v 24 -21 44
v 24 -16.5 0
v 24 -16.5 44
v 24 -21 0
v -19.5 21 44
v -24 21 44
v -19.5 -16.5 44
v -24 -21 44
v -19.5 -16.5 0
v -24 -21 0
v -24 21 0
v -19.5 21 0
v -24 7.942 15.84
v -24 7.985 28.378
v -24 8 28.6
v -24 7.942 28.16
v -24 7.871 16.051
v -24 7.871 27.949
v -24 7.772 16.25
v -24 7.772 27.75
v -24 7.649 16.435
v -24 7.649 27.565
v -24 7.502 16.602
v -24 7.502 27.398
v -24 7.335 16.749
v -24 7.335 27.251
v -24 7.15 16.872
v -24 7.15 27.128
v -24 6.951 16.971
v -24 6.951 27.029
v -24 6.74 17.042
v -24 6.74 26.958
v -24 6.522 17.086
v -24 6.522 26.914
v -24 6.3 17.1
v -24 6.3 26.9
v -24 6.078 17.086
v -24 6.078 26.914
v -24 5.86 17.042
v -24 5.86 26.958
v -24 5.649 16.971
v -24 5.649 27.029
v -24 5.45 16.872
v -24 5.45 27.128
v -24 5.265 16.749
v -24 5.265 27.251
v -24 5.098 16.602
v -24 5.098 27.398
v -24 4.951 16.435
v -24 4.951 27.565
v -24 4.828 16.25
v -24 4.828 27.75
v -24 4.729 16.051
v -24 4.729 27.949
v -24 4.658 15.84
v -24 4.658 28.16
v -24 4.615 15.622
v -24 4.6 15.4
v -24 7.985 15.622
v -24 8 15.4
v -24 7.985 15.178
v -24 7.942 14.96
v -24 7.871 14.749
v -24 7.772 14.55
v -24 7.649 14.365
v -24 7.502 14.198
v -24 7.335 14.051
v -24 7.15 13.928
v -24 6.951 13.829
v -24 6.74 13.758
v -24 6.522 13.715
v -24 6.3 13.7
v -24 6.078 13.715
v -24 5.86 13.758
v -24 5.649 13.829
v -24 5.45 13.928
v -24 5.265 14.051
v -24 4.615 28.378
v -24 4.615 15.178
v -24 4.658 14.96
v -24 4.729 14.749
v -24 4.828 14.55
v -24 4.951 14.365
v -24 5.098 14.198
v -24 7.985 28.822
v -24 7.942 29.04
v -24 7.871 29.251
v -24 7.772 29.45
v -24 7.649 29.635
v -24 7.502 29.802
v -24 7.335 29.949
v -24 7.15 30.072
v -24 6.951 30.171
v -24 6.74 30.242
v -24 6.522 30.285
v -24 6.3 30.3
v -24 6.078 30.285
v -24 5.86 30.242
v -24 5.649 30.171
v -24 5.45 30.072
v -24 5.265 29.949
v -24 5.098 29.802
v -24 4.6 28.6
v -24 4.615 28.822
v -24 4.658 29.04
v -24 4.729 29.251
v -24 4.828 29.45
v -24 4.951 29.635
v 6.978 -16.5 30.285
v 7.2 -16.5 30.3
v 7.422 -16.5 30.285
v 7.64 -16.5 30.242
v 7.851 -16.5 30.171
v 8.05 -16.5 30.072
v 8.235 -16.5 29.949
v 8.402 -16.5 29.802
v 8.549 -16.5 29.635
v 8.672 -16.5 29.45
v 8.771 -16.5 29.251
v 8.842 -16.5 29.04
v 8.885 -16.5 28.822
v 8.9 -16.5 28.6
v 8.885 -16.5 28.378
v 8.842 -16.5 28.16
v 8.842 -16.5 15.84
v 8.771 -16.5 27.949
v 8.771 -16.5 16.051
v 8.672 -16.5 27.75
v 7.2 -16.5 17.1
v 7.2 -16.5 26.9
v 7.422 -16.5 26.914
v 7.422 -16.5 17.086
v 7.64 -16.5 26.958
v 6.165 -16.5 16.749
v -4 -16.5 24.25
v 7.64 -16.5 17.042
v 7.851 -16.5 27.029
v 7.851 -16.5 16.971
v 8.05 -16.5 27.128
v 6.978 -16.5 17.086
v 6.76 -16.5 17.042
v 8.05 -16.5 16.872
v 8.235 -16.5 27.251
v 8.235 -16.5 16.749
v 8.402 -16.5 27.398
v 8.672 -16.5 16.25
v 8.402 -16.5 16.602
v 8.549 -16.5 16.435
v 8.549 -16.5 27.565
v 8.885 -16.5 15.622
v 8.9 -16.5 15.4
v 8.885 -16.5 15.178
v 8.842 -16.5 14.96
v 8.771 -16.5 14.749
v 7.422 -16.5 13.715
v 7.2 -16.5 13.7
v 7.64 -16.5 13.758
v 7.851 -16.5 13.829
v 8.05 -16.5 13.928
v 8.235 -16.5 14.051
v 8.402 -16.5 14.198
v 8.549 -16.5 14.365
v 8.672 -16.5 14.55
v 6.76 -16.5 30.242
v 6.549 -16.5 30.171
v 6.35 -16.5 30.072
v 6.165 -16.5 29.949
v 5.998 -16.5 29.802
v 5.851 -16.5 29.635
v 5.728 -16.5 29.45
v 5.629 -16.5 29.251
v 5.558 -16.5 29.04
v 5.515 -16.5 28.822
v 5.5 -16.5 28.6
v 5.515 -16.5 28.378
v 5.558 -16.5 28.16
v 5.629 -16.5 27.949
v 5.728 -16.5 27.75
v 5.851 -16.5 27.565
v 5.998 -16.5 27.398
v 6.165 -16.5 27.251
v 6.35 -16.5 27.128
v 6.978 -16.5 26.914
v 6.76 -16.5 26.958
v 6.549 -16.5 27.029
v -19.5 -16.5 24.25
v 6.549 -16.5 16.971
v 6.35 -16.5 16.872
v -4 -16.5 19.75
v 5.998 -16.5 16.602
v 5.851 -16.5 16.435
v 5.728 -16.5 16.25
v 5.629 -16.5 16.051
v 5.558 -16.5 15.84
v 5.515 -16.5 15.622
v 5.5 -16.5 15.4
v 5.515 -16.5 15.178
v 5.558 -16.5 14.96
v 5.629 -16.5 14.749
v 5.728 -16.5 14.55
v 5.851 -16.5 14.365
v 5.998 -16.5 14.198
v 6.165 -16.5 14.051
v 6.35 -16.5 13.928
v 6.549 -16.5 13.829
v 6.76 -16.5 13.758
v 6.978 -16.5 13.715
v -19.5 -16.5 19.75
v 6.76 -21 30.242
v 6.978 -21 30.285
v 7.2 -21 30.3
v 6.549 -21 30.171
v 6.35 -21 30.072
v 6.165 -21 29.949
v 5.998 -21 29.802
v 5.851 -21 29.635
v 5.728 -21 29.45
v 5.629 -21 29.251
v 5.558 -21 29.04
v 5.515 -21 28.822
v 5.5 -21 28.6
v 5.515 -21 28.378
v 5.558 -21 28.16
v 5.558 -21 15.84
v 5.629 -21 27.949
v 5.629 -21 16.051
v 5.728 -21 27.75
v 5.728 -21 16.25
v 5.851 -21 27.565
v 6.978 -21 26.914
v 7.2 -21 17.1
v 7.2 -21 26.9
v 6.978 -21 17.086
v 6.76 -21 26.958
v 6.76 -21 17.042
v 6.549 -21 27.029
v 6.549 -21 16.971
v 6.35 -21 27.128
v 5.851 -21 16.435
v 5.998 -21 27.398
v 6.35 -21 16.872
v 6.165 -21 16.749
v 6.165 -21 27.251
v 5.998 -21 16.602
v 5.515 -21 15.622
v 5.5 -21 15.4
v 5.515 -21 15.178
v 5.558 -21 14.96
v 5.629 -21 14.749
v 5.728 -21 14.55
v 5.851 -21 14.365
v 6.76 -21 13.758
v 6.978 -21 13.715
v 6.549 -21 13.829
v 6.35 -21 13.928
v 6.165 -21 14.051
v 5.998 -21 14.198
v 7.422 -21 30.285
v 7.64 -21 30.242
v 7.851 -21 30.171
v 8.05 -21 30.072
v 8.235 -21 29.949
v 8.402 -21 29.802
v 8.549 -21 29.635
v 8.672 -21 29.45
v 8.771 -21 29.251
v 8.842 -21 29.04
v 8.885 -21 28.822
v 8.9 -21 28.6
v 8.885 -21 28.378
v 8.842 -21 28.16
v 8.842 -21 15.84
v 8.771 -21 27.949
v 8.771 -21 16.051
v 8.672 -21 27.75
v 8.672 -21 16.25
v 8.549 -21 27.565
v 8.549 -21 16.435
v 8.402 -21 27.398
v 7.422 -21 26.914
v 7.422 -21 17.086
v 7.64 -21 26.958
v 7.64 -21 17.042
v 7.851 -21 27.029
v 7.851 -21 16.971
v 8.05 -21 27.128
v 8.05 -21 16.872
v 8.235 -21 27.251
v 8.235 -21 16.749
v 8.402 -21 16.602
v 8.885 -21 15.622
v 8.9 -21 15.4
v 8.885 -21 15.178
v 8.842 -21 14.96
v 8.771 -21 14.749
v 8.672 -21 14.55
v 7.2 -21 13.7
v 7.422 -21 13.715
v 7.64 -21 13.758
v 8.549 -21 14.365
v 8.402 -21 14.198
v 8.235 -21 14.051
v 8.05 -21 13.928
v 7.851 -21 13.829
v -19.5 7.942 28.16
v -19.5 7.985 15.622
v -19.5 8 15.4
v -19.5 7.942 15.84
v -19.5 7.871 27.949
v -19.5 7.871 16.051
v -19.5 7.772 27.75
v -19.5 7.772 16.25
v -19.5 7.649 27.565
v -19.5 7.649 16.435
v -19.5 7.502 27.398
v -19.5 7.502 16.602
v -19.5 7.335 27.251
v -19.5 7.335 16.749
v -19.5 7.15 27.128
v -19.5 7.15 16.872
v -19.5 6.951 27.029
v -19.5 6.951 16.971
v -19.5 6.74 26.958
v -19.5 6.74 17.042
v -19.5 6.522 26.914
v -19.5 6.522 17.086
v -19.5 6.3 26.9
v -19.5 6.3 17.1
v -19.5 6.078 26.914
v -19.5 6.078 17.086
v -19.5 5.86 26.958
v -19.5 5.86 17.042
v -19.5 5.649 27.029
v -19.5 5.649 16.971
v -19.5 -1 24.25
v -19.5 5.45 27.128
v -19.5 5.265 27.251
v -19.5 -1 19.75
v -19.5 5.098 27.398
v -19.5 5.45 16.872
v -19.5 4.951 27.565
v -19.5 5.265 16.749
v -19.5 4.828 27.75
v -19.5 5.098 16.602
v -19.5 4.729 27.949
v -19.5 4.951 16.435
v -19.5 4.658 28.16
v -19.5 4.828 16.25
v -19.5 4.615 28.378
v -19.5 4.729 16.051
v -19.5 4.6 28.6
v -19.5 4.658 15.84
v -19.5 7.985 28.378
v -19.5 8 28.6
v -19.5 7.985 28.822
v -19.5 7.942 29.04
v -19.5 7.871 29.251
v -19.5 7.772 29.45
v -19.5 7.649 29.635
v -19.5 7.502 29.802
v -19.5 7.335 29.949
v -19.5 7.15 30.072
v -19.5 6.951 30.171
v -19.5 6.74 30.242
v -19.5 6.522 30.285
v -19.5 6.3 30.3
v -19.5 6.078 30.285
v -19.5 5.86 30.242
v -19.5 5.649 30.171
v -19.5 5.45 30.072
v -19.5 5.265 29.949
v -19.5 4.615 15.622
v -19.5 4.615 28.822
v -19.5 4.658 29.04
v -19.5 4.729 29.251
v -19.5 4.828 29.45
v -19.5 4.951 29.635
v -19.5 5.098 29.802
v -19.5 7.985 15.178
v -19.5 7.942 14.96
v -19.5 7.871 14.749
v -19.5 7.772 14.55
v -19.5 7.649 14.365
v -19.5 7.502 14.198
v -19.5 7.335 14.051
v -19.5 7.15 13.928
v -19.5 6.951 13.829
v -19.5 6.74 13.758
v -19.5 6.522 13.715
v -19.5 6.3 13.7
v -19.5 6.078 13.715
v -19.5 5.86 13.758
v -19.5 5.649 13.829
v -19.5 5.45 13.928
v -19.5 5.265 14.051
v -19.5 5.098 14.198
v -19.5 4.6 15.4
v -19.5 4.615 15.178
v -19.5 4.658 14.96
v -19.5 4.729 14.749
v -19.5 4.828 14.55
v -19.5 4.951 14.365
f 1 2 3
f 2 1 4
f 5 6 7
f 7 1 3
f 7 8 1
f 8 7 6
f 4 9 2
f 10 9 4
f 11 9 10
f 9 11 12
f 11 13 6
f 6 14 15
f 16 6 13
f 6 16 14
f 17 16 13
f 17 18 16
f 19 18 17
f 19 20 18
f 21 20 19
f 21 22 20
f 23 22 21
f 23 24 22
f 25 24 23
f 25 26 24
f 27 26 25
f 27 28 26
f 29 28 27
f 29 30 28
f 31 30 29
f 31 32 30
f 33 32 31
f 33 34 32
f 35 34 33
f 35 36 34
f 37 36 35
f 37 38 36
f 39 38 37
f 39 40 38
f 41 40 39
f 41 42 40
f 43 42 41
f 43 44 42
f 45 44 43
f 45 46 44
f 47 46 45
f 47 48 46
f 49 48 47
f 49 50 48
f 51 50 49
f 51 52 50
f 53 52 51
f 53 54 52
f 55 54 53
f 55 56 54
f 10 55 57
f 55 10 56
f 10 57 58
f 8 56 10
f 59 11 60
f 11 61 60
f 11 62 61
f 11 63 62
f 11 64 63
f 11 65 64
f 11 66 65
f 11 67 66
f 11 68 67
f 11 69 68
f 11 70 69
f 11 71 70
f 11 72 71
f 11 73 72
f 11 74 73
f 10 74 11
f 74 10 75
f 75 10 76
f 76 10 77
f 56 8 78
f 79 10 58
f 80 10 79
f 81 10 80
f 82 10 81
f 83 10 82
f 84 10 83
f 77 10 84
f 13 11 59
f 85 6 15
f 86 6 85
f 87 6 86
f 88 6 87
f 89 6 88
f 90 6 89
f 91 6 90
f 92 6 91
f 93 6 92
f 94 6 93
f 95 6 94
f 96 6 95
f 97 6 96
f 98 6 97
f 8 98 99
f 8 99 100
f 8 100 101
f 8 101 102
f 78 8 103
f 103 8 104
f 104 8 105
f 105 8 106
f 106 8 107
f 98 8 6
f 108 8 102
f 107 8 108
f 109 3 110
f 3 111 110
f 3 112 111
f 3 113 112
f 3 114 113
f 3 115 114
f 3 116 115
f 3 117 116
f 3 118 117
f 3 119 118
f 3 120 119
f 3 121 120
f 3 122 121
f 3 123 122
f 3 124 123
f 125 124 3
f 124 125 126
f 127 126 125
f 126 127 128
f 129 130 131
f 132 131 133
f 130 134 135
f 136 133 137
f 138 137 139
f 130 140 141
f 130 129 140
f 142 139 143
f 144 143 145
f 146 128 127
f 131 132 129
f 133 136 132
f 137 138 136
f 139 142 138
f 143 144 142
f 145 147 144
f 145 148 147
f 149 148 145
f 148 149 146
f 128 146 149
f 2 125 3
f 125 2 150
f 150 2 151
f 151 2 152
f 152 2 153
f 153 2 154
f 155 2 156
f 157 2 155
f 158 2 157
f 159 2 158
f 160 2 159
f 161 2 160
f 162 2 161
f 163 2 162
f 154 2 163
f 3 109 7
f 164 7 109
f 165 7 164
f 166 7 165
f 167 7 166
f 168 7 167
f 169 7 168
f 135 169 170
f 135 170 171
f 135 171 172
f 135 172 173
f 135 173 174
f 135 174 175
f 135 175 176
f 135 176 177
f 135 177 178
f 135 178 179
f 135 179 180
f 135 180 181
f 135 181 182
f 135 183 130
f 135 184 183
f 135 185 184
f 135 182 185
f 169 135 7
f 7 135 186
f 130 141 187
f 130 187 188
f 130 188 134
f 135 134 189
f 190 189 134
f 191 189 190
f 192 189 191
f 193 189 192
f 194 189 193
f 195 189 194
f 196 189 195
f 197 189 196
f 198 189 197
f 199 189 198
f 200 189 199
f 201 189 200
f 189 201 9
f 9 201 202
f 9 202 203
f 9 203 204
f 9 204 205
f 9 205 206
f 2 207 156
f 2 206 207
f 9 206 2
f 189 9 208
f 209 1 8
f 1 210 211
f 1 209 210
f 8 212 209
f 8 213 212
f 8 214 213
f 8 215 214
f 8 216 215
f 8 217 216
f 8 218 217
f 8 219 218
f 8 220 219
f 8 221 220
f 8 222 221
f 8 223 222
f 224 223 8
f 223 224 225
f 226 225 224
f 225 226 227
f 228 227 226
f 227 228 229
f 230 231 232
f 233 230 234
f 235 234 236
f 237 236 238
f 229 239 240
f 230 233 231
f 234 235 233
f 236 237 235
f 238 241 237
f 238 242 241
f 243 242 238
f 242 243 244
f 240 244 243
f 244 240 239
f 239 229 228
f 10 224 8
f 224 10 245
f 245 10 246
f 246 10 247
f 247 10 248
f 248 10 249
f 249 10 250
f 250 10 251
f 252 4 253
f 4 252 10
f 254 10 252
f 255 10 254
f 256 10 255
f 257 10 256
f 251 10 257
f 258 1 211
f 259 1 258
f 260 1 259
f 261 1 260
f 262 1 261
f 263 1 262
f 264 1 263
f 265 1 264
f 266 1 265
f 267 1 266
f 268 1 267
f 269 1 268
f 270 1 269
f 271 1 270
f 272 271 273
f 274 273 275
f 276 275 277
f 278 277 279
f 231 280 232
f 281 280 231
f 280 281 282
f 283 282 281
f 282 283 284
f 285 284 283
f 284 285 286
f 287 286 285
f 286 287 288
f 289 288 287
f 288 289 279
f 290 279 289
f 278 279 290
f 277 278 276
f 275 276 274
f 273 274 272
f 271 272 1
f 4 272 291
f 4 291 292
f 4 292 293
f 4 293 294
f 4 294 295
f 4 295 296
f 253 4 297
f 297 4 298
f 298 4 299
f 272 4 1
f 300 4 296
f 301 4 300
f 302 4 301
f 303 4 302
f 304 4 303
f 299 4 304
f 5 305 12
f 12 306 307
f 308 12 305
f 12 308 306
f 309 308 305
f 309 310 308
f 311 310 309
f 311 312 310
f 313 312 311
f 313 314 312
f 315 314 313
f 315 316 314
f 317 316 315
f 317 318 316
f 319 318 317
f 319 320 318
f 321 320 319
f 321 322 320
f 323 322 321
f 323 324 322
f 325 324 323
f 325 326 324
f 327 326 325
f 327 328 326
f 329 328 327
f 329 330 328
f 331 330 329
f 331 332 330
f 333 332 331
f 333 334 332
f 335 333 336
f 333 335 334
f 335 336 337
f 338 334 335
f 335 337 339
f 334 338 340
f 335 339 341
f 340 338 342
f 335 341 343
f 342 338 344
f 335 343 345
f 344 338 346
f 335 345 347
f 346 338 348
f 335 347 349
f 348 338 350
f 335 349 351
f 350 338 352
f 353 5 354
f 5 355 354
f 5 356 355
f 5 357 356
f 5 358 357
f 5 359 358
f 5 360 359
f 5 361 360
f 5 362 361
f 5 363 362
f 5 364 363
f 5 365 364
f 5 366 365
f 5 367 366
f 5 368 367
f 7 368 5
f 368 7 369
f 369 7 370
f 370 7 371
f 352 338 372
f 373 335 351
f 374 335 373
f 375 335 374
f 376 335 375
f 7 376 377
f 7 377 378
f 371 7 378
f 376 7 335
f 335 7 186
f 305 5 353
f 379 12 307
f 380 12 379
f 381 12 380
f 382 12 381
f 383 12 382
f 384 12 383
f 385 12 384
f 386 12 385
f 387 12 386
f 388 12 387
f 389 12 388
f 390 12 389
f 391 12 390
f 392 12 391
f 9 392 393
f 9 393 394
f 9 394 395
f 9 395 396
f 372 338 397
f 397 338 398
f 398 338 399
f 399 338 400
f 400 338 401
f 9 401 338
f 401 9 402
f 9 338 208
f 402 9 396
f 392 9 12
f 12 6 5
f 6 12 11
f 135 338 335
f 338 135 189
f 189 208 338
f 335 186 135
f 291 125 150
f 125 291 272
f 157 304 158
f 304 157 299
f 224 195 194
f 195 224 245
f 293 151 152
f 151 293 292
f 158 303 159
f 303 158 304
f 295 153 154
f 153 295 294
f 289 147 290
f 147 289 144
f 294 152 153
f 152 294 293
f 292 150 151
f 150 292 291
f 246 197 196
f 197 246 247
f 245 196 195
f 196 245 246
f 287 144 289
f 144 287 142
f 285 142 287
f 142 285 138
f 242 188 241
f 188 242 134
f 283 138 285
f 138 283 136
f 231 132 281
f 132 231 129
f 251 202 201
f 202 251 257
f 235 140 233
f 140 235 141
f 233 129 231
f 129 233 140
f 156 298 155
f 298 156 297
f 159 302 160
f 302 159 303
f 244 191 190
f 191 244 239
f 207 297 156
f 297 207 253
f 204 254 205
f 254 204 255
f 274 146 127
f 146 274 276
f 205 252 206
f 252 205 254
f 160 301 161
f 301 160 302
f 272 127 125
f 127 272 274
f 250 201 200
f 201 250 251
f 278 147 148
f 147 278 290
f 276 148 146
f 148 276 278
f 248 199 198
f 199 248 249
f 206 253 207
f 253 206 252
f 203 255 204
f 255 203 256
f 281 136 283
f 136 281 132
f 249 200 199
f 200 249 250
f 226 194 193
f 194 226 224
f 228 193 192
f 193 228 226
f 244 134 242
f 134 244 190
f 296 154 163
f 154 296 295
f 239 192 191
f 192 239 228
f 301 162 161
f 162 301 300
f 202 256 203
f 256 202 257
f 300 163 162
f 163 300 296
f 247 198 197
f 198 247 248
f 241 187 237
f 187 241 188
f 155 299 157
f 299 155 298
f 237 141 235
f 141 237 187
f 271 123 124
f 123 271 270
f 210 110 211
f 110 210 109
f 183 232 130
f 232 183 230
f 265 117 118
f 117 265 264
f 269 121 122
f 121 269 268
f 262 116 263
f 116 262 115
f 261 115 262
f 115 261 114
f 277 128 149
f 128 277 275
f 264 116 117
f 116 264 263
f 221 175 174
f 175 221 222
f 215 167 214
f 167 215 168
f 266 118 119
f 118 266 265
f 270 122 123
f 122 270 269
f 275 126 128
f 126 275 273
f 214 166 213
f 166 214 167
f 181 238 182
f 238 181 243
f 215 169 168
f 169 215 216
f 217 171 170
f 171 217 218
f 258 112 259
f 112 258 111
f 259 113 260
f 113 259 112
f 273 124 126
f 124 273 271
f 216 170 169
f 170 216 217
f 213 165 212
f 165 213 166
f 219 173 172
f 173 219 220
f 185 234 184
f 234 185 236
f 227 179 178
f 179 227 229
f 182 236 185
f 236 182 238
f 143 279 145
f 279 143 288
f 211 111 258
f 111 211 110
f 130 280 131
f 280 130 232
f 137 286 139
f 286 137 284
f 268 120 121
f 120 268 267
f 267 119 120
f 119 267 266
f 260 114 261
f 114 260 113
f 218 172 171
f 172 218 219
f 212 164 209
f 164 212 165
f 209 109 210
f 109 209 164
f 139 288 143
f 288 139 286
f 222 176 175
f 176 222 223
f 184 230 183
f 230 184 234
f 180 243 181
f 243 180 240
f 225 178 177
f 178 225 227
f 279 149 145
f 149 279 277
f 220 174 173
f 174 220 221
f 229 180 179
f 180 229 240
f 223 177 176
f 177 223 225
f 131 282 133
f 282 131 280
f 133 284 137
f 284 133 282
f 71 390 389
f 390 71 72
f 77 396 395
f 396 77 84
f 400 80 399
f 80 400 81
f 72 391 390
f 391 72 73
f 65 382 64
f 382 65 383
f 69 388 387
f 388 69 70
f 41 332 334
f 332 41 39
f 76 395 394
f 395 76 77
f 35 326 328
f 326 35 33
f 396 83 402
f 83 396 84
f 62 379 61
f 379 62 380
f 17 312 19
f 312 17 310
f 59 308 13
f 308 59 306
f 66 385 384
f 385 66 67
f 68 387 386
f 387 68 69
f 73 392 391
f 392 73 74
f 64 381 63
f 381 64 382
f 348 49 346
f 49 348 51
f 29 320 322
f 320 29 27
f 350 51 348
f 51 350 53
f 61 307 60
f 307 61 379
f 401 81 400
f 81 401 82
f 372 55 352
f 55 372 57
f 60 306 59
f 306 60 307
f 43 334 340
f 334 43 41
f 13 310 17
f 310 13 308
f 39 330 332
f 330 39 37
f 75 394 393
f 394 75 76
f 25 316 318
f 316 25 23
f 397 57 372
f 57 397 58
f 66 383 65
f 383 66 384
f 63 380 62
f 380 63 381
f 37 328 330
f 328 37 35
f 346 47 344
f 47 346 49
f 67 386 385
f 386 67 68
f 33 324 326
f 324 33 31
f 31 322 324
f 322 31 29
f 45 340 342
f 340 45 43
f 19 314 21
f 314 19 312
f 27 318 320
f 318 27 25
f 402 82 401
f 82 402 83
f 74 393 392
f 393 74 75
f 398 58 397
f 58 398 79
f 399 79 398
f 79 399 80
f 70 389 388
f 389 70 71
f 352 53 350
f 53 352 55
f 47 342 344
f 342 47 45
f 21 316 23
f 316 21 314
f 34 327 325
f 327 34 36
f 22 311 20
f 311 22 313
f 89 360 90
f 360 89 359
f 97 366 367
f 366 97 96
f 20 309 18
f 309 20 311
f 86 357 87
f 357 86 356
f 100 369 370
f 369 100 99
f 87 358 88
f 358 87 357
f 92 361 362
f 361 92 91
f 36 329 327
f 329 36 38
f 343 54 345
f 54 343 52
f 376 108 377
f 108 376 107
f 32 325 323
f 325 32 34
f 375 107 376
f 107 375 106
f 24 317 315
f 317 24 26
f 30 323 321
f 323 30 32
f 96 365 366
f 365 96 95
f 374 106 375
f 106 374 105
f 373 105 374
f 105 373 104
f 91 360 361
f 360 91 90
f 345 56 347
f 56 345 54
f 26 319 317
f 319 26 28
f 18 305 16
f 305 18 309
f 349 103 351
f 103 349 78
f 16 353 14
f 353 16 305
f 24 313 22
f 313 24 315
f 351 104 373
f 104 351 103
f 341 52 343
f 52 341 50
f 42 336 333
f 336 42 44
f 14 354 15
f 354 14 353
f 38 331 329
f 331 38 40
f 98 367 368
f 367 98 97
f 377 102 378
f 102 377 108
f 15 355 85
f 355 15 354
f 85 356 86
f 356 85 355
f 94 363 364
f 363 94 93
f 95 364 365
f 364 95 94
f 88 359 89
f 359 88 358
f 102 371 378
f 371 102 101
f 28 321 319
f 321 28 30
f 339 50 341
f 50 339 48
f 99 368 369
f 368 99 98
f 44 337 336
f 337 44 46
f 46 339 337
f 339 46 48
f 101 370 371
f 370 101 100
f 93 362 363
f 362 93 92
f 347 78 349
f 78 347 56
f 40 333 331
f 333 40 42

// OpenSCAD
// ============================================================================
// Get Me An Alt — Parametric OpenSCAD Module
// Part: PRT-07 — J5 Differential Wrist Pitch Clevis Gimbal (wrist-pitch-clevis)
// Function: Articulates end-effector pitch angle (±95°).
// Target Bounding Box (mm): [48, 42, 44]
// Print Material: PLA+ | Min Wall: >= 1.6mm | Tolerance: 0.2mm
// ============================================================================
$fn = 48;
part_width = 48;
part_depth = 42;
part_height = 44;
wall_thickness = 3;
floor_thickness = 3;
corner_radius = 4;
tolerance = 0.2;
m3_clearance_d = 3.4; // M3 screw clearance hole (3.0mm + 2*0.2mm)

module rounded_rect_prism(w, d, h, r) {
  cr = max(0.5, min(r, min(w, d) / 2 - 0.1));
  linear_extrude(height = h)
    offset(r = cr)
      offset(r = -cr)
        square([w, d], center = true);
}

module part_wrist_pitch_clevis() {
  t = 4.5;
  translate([-part_width / 2, -part_depth / 2, 0])
  difference() {
    union() {
      // Horizontal leg A
      cube([part_width, t, part_height]);
      // Vertical leg B
      cube([t, part_depth, part_height]);
      // Corner gusset rib
      translate([0, 0, part_height * 0.5 - t * 0.5])
        linear_extrude(height = t)
          polygon(points = [[t, t], [min(part_width * 0.55, 20), t], [t, min(part_depth * 0.55, 20)]]);
    }
    // M3 mounting holes on leg A
    translate([part_width * 0.65, t + 1, part_height * 0.35])
      rotate([90, 0, 0]) cylinder(h = t + 2, d = m3_clearance_d);
    translate([part_width * 0.65, t + 1, part_height * 0.65])
      rotate([90, 0, 0]) cylinder(h = t + 2, d = m3_clearance_d);
    // M3 mounting holes on leg B
    translate([-1, part_depth * 0.65, part_height * 0.35])
      rotate([0, 90, 0]) cylinder(h = t + 2, d = m3_clearance_d);
    translate([-1, part_depth * 0.65, part_height * 0.65])
      rotate([0, 90, 0]) cylinder(h = t + 2, d = m3_clearance_d);
  }
}

part_wrist_pitch_clevis();
